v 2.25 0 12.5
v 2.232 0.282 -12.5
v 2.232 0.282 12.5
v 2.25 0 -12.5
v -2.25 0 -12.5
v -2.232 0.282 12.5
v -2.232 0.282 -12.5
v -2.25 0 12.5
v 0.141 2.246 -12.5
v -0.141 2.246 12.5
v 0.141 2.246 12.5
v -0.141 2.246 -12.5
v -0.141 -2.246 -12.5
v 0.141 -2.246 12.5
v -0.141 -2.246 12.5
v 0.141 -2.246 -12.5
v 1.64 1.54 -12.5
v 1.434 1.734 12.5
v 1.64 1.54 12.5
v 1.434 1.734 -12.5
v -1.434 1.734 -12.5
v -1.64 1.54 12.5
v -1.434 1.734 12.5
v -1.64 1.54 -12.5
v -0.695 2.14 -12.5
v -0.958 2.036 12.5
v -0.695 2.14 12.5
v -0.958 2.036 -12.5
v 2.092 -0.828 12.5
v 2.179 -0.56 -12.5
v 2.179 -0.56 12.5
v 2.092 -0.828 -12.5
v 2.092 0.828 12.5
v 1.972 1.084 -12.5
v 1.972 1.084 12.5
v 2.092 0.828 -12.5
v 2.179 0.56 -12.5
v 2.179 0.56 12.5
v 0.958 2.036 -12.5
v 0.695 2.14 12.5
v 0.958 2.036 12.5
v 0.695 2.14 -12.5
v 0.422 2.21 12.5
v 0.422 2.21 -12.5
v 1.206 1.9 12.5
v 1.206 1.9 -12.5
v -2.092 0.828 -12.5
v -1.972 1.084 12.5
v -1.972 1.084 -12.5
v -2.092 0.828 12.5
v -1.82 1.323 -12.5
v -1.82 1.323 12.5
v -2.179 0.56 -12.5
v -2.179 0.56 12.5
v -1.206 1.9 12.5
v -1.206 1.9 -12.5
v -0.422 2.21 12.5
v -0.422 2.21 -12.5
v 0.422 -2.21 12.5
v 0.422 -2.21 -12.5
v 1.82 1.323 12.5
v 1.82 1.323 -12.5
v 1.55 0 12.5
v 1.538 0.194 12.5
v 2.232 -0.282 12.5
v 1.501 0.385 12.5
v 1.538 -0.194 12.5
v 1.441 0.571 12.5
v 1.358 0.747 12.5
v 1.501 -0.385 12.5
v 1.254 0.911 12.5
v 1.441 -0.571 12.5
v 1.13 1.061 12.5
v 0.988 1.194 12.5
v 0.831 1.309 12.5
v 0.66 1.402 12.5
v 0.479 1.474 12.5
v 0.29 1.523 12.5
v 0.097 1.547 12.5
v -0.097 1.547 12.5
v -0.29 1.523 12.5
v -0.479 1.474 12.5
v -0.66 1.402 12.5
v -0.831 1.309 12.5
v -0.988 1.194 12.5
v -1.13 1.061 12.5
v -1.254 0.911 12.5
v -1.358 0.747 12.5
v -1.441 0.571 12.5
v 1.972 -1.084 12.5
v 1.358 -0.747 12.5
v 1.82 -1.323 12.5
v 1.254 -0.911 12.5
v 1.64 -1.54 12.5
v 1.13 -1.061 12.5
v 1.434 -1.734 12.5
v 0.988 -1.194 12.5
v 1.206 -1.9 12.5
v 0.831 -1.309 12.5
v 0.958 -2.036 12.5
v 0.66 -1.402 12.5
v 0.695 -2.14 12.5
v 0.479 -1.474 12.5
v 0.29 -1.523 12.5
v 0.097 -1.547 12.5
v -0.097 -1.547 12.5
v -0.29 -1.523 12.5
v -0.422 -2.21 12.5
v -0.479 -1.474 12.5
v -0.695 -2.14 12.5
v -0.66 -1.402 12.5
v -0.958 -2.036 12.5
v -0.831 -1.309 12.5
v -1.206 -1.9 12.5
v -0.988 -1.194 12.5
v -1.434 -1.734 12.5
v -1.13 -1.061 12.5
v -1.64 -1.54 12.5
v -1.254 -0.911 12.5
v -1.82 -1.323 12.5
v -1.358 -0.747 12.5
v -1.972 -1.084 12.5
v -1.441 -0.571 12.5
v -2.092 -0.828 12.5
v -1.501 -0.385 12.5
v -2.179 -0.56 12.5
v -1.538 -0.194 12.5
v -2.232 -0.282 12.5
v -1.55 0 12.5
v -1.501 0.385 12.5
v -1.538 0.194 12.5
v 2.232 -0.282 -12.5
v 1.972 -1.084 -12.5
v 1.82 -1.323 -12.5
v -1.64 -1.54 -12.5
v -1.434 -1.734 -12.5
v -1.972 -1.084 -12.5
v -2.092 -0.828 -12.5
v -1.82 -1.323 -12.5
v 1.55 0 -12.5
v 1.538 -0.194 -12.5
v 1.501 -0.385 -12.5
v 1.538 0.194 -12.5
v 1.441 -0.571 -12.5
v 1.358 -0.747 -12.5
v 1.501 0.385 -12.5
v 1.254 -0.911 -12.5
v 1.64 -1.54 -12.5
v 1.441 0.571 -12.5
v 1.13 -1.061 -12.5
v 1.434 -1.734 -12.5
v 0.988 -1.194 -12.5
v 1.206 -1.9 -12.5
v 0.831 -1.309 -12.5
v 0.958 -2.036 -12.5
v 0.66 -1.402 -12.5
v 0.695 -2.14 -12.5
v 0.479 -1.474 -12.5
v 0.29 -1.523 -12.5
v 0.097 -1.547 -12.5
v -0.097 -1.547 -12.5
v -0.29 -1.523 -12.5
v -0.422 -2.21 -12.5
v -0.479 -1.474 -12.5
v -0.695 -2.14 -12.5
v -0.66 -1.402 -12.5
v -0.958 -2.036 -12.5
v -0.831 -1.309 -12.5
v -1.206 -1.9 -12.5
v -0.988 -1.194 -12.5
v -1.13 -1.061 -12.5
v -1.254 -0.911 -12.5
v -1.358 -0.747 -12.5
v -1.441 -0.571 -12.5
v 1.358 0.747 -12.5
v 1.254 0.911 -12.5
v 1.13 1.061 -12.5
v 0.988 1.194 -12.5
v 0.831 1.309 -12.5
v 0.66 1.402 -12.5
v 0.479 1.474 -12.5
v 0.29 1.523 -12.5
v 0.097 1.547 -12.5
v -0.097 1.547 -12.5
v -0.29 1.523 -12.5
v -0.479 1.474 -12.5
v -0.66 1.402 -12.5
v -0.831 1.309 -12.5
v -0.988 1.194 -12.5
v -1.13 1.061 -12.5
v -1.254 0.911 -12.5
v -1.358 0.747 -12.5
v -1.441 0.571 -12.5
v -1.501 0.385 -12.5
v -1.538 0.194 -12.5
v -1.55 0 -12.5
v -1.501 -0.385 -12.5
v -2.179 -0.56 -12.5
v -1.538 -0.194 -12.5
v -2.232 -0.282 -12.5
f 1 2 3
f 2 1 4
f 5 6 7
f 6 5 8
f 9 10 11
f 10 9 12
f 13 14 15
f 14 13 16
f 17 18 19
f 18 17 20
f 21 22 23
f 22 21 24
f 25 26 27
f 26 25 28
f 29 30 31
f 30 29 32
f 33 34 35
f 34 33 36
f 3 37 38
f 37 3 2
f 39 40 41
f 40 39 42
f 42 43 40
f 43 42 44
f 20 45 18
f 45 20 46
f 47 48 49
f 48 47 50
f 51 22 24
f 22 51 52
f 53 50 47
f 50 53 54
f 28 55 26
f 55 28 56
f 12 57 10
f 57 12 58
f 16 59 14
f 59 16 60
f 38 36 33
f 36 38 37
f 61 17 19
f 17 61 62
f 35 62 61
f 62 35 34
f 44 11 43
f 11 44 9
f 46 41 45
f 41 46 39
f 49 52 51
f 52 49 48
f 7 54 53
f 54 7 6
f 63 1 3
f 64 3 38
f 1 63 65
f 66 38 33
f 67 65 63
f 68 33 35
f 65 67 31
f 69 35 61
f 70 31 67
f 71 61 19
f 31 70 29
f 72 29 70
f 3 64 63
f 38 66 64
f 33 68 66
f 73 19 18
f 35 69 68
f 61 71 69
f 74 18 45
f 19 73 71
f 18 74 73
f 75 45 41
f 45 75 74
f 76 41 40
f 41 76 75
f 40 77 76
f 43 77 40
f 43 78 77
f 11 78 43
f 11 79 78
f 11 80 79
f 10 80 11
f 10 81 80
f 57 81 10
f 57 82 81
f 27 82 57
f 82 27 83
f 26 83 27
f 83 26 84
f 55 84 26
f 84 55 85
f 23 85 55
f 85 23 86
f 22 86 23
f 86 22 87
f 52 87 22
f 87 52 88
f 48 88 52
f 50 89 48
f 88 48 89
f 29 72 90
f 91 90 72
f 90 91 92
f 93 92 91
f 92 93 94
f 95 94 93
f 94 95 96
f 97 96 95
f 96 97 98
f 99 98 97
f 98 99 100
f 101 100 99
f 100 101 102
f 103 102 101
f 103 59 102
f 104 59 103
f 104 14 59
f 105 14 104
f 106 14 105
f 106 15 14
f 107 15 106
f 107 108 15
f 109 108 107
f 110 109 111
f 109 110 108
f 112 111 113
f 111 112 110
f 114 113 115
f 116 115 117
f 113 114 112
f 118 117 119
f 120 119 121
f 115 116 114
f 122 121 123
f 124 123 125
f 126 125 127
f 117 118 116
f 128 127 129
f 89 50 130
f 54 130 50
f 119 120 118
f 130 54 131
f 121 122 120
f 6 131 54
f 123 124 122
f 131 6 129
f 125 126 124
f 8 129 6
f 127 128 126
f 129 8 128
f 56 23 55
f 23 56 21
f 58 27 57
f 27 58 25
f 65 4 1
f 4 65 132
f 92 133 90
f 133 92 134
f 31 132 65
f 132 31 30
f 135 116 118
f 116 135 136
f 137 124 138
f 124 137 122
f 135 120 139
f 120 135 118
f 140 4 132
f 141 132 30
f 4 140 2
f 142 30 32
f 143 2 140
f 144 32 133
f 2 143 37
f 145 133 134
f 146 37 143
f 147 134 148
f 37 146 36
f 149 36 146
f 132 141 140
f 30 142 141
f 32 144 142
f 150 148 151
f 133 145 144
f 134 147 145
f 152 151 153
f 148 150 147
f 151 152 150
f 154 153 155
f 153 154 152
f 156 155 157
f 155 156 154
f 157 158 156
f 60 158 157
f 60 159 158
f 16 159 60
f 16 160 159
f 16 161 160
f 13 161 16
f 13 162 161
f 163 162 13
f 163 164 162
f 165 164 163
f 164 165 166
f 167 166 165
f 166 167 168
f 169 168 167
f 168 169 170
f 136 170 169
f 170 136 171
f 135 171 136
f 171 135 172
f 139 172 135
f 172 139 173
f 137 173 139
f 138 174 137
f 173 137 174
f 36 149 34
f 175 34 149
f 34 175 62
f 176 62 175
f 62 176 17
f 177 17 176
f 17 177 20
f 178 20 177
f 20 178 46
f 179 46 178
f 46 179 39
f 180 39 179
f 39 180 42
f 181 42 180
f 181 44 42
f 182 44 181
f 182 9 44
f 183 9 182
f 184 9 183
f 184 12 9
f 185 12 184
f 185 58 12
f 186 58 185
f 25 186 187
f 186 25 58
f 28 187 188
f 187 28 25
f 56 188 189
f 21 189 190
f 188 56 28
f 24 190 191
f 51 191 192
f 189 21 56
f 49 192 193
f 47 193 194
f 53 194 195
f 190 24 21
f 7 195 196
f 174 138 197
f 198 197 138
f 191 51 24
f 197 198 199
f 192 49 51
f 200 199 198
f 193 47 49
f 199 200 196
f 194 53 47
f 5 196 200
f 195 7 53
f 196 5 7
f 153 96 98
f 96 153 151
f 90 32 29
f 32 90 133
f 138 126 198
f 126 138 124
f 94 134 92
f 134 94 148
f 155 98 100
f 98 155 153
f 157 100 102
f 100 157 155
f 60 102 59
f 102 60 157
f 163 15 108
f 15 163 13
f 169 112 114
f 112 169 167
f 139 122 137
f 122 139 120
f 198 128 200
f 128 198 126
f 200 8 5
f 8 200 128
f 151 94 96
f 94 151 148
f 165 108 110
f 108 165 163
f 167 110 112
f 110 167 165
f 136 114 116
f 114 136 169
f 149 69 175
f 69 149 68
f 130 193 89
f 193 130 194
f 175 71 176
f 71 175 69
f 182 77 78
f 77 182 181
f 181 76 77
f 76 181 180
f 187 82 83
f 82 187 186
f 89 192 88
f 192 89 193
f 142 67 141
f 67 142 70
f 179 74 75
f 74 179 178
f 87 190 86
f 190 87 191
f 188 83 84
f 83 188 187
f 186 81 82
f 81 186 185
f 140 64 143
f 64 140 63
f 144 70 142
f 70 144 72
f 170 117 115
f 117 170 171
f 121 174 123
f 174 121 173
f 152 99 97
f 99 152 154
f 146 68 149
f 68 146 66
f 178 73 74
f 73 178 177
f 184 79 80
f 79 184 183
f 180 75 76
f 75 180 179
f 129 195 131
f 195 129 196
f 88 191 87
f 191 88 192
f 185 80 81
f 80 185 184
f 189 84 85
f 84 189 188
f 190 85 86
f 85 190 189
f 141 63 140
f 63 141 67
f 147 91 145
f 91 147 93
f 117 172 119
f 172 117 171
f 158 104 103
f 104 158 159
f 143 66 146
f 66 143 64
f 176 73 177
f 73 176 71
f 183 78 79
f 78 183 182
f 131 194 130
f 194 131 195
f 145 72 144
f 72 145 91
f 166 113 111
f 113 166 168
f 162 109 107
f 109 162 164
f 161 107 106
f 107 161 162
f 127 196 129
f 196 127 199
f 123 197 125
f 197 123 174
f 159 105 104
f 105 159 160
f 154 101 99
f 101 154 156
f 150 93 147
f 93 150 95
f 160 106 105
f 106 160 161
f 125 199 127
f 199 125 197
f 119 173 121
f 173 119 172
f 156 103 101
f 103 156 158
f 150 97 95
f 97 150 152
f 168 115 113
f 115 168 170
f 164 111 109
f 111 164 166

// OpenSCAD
$fn = 50;


difference() {
	union() {
		translate(v = [0, 0, -12.5000000000]) {
			cylinder(h = 25, r = 2.2500000000);
		}
	}
	union() {
		translate(v = [0, 0, -100.0000000000]) {
			cylinder(h = 200, r = 1.5500000000);
		}
	}
}
